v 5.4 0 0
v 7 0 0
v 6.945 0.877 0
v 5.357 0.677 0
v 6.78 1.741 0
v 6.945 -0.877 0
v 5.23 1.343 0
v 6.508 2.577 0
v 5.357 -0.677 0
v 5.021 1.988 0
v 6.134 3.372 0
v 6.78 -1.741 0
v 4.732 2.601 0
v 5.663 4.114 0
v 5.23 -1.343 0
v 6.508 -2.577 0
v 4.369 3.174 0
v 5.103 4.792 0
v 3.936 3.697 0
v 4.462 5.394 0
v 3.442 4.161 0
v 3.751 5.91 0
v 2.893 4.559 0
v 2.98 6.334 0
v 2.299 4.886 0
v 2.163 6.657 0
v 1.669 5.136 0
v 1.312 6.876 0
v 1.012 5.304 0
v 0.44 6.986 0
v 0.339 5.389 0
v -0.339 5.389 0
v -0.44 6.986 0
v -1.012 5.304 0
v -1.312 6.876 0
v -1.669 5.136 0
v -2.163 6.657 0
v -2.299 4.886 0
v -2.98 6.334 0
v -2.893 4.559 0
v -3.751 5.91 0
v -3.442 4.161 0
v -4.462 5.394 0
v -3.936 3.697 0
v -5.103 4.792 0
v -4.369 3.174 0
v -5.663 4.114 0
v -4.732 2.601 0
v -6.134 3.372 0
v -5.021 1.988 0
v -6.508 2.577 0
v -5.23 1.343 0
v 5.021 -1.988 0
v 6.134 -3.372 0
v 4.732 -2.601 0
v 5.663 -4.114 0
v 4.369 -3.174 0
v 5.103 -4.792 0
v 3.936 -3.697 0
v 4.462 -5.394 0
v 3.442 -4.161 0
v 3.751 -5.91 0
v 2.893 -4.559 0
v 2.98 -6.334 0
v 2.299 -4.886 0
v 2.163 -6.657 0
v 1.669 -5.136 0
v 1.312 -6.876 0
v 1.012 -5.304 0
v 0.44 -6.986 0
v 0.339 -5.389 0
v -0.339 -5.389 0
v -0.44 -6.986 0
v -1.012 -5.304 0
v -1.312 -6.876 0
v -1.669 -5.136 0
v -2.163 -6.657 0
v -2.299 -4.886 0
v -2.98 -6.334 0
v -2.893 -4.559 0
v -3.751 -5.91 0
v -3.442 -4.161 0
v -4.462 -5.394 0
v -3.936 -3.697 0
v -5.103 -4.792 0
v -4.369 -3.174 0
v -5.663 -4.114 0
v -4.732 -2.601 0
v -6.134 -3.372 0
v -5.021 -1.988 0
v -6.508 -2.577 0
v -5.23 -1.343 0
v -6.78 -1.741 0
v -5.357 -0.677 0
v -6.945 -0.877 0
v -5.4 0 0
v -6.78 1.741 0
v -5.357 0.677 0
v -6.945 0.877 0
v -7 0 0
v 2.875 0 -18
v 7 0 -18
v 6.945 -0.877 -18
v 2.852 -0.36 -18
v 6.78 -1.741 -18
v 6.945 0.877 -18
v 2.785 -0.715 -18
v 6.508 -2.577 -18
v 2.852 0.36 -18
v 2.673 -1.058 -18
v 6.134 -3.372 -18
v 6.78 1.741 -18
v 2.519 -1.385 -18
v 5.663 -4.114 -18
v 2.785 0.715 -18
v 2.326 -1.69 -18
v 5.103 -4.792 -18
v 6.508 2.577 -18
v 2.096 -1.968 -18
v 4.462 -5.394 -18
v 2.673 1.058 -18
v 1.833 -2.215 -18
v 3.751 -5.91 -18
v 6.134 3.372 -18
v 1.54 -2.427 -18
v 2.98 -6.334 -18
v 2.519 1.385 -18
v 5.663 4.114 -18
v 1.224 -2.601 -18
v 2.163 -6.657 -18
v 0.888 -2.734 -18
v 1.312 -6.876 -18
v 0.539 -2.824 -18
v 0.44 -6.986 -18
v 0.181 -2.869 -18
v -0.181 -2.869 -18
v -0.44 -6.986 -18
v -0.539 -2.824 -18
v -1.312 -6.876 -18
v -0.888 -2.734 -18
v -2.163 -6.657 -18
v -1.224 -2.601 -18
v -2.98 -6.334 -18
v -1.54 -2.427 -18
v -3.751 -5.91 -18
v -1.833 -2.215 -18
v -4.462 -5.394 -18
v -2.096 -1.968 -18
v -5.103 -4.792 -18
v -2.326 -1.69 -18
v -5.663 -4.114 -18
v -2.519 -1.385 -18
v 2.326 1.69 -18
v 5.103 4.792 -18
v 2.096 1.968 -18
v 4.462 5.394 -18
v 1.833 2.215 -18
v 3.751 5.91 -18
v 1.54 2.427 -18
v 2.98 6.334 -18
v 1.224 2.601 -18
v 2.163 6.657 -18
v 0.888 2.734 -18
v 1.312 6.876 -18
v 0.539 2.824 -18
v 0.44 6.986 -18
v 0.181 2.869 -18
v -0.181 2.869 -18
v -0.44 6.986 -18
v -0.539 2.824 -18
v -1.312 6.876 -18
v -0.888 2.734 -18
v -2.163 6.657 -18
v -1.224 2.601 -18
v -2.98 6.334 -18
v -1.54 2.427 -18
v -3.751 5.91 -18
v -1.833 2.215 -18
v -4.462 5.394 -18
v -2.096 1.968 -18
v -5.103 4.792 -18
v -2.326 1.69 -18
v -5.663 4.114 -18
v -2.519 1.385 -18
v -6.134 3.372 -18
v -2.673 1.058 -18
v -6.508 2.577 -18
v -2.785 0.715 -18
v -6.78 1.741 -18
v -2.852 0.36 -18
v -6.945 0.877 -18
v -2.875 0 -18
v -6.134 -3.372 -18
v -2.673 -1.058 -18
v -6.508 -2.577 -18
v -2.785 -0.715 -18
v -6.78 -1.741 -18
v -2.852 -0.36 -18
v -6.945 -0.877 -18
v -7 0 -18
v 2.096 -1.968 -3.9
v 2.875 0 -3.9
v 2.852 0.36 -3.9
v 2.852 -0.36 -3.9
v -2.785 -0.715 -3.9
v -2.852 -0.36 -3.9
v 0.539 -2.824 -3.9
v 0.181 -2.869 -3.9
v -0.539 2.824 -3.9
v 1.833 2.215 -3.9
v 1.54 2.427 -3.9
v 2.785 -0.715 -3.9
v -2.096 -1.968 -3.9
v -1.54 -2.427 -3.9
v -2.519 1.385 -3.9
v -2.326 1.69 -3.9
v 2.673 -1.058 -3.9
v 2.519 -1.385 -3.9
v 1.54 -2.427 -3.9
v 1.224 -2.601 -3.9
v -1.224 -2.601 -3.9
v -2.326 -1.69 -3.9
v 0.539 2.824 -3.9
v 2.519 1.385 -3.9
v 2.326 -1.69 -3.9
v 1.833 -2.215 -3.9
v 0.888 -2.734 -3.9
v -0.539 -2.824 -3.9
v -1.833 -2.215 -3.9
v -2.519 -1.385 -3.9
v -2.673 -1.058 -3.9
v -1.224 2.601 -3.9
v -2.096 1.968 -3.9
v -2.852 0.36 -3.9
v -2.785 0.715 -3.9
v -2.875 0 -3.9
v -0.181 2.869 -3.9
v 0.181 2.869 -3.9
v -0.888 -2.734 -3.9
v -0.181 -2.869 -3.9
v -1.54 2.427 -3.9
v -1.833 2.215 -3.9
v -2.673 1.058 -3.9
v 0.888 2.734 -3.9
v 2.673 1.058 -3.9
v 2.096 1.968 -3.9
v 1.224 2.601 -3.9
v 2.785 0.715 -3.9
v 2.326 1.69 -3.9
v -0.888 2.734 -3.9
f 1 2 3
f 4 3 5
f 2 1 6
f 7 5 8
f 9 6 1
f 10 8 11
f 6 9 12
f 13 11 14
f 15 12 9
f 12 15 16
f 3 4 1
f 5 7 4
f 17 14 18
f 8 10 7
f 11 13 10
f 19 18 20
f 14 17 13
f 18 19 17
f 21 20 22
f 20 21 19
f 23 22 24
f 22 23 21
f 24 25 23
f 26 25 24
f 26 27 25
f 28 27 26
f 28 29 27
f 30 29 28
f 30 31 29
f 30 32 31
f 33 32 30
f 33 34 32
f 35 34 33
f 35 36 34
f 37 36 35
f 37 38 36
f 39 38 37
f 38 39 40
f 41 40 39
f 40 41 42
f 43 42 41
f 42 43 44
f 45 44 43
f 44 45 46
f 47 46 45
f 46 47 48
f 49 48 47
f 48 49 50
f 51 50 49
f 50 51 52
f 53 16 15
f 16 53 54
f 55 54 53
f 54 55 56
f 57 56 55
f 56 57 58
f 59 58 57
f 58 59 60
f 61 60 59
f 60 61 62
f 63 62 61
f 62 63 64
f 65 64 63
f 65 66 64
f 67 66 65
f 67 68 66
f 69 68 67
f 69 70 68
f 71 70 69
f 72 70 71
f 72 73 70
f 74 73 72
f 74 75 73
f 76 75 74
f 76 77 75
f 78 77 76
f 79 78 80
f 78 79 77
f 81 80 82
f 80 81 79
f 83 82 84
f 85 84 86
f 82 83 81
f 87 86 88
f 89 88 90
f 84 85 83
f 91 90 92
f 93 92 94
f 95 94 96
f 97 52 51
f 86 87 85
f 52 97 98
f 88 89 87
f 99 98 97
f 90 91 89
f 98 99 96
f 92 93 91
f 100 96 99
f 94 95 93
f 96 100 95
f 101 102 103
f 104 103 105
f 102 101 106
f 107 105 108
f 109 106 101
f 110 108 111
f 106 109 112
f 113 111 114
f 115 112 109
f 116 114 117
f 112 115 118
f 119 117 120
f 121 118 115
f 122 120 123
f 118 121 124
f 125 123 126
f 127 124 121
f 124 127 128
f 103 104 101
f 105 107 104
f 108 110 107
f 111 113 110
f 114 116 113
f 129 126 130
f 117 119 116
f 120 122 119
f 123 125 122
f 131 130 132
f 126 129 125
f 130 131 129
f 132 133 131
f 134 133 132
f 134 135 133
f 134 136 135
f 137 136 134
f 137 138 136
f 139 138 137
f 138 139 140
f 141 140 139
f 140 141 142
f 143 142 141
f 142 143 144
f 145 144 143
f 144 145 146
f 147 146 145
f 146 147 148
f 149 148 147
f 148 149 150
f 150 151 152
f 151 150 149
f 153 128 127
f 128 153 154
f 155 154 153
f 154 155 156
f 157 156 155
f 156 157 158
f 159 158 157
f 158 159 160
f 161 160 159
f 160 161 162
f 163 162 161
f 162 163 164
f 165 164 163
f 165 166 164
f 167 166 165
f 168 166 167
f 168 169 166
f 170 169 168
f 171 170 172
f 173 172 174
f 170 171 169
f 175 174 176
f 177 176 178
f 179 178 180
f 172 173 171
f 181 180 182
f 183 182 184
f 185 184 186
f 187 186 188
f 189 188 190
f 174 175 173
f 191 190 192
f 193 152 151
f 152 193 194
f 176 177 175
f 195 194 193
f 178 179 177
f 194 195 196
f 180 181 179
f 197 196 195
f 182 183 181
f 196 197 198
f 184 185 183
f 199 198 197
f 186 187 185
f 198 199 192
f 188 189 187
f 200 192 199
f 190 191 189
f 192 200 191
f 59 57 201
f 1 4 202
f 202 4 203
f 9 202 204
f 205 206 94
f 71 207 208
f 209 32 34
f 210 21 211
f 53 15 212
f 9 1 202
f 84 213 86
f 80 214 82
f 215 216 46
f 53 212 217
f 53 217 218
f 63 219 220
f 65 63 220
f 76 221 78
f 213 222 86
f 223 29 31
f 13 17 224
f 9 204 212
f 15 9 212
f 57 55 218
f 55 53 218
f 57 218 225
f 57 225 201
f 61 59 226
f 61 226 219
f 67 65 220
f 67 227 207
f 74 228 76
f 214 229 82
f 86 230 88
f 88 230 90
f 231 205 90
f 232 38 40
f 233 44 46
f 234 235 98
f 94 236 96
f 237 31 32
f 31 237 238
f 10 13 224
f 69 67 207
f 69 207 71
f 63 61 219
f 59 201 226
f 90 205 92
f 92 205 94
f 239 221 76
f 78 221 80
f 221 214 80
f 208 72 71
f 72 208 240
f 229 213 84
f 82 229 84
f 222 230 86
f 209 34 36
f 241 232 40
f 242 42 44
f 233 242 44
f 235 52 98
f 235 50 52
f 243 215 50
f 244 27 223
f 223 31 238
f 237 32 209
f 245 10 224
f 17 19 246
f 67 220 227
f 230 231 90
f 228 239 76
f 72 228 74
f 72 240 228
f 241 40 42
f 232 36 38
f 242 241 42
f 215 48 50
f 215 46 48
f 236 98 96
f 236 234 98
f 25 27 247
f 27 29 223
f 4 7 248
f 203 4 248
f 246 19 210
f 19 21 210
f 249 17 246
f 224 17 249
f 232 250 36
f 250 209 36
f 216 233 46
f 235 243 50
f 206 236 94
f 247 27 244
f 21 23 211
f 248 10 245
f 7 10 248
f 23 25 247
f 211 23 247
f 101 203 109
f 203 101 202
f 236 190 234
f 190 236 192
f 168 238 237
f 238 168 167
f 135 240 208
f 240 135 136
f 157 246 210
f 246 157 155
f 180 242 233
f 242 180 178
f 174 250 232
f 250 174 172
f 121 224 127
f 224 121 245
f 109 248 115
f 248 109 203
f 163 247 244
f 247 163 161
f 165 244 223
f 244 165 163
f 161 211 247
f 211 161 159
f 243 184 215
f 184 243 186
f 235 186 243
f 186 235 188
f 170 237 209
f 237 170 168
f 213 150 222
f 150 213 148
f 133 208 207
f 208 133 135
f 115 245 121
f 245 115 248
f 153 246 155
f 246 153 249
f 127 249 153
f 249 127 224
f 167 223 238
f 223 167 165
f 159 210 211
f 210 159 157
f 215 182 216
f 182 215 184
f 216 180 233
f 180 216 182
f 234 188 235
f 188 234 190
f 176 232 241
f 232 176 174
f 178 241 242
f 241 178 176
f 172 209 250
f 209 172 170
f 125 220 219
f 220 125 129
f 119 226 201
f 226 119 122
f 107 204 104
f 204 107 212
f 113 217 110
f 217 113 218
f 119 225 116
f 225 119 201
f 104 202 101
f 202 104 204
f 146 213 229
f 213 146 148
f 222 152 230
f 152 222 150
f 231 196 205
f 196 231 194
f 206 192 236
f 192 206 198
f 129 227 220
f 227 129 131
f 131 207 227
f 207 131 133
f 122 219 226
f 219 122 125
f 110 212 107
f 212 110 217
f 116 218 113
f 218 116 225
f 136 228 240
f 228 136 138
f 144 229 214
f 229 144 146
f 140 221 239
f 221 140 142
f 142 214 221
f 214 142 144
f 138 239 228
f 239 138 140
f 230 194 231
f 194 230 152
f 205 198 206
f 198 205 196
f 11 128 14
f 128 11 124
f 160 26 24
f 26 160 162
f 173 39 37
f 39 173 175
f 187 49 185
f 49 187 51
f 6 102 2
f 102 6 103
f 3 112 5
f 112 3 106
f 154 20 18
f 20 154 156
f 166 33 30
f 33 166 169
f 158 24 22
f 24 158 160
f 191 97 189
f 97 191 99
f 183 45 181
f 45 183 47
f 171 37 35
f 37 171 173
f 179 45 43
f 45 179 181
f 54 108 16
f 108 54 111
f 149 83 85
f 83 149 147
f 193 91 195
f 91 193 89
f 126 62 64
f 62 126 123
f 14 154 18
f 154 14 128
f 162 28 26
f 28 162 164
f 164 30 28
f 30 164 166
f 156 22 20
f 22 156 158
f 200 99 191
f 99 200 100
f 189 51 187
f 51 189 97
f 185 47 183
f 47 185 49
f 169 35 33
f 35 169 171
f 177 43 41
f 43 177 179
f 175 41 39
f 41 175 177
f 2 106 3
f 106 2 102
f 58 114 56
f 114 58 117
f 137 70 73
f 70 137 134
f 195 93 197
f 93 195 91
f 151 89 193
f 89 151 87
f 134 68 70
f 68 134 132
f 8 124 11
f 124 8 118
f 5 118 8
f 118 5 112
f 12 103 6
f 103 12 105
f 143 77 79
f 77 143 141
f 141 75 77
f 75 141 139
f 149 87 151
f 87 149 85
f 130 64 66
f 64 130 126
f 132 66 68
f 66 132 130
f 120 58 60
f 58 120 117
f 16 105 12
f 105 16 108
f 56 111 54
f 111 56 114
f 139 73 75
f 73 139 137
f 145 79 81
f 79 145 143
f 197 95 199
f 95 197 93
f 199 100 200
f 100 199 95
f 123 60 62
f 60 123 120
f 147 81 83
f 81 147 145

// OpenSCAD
$fn = 50;


difference() {
	union() {
		translate(v = [0, 0, -18.0000000000]) {
			cylinder(h = 18, r = 7.0000000000);
		}
		cylinder(h = 0, r = 10.0000000000);
	}
	union() {
		translate(v = [0, 0, 0]) {
			rotate(a = [0, 0, 0]) {
				difference() {
					union() {
						#translate(v = [0, 0, -18.0000000000]) {
							cylinder(h = 18, r = 2.6000000000);
						}
						#translate(v = [0, 0, -3.9000000000]) {
							cylinder(h = 3.9000000000, r1 = 2.8750000000, r2 = 5.4000000000);
						}
						#translate(v = [0, 0, -18.0000000000]) {
							cylinder(h = 18, r = 2.8750000000);
						}
						#translate(v = [0, 0, -18.0000000000]) {
							cylinder(h = 18, r = 2.6000000000);
						}
					}
					union();
				}
			}
		}
	}
}
